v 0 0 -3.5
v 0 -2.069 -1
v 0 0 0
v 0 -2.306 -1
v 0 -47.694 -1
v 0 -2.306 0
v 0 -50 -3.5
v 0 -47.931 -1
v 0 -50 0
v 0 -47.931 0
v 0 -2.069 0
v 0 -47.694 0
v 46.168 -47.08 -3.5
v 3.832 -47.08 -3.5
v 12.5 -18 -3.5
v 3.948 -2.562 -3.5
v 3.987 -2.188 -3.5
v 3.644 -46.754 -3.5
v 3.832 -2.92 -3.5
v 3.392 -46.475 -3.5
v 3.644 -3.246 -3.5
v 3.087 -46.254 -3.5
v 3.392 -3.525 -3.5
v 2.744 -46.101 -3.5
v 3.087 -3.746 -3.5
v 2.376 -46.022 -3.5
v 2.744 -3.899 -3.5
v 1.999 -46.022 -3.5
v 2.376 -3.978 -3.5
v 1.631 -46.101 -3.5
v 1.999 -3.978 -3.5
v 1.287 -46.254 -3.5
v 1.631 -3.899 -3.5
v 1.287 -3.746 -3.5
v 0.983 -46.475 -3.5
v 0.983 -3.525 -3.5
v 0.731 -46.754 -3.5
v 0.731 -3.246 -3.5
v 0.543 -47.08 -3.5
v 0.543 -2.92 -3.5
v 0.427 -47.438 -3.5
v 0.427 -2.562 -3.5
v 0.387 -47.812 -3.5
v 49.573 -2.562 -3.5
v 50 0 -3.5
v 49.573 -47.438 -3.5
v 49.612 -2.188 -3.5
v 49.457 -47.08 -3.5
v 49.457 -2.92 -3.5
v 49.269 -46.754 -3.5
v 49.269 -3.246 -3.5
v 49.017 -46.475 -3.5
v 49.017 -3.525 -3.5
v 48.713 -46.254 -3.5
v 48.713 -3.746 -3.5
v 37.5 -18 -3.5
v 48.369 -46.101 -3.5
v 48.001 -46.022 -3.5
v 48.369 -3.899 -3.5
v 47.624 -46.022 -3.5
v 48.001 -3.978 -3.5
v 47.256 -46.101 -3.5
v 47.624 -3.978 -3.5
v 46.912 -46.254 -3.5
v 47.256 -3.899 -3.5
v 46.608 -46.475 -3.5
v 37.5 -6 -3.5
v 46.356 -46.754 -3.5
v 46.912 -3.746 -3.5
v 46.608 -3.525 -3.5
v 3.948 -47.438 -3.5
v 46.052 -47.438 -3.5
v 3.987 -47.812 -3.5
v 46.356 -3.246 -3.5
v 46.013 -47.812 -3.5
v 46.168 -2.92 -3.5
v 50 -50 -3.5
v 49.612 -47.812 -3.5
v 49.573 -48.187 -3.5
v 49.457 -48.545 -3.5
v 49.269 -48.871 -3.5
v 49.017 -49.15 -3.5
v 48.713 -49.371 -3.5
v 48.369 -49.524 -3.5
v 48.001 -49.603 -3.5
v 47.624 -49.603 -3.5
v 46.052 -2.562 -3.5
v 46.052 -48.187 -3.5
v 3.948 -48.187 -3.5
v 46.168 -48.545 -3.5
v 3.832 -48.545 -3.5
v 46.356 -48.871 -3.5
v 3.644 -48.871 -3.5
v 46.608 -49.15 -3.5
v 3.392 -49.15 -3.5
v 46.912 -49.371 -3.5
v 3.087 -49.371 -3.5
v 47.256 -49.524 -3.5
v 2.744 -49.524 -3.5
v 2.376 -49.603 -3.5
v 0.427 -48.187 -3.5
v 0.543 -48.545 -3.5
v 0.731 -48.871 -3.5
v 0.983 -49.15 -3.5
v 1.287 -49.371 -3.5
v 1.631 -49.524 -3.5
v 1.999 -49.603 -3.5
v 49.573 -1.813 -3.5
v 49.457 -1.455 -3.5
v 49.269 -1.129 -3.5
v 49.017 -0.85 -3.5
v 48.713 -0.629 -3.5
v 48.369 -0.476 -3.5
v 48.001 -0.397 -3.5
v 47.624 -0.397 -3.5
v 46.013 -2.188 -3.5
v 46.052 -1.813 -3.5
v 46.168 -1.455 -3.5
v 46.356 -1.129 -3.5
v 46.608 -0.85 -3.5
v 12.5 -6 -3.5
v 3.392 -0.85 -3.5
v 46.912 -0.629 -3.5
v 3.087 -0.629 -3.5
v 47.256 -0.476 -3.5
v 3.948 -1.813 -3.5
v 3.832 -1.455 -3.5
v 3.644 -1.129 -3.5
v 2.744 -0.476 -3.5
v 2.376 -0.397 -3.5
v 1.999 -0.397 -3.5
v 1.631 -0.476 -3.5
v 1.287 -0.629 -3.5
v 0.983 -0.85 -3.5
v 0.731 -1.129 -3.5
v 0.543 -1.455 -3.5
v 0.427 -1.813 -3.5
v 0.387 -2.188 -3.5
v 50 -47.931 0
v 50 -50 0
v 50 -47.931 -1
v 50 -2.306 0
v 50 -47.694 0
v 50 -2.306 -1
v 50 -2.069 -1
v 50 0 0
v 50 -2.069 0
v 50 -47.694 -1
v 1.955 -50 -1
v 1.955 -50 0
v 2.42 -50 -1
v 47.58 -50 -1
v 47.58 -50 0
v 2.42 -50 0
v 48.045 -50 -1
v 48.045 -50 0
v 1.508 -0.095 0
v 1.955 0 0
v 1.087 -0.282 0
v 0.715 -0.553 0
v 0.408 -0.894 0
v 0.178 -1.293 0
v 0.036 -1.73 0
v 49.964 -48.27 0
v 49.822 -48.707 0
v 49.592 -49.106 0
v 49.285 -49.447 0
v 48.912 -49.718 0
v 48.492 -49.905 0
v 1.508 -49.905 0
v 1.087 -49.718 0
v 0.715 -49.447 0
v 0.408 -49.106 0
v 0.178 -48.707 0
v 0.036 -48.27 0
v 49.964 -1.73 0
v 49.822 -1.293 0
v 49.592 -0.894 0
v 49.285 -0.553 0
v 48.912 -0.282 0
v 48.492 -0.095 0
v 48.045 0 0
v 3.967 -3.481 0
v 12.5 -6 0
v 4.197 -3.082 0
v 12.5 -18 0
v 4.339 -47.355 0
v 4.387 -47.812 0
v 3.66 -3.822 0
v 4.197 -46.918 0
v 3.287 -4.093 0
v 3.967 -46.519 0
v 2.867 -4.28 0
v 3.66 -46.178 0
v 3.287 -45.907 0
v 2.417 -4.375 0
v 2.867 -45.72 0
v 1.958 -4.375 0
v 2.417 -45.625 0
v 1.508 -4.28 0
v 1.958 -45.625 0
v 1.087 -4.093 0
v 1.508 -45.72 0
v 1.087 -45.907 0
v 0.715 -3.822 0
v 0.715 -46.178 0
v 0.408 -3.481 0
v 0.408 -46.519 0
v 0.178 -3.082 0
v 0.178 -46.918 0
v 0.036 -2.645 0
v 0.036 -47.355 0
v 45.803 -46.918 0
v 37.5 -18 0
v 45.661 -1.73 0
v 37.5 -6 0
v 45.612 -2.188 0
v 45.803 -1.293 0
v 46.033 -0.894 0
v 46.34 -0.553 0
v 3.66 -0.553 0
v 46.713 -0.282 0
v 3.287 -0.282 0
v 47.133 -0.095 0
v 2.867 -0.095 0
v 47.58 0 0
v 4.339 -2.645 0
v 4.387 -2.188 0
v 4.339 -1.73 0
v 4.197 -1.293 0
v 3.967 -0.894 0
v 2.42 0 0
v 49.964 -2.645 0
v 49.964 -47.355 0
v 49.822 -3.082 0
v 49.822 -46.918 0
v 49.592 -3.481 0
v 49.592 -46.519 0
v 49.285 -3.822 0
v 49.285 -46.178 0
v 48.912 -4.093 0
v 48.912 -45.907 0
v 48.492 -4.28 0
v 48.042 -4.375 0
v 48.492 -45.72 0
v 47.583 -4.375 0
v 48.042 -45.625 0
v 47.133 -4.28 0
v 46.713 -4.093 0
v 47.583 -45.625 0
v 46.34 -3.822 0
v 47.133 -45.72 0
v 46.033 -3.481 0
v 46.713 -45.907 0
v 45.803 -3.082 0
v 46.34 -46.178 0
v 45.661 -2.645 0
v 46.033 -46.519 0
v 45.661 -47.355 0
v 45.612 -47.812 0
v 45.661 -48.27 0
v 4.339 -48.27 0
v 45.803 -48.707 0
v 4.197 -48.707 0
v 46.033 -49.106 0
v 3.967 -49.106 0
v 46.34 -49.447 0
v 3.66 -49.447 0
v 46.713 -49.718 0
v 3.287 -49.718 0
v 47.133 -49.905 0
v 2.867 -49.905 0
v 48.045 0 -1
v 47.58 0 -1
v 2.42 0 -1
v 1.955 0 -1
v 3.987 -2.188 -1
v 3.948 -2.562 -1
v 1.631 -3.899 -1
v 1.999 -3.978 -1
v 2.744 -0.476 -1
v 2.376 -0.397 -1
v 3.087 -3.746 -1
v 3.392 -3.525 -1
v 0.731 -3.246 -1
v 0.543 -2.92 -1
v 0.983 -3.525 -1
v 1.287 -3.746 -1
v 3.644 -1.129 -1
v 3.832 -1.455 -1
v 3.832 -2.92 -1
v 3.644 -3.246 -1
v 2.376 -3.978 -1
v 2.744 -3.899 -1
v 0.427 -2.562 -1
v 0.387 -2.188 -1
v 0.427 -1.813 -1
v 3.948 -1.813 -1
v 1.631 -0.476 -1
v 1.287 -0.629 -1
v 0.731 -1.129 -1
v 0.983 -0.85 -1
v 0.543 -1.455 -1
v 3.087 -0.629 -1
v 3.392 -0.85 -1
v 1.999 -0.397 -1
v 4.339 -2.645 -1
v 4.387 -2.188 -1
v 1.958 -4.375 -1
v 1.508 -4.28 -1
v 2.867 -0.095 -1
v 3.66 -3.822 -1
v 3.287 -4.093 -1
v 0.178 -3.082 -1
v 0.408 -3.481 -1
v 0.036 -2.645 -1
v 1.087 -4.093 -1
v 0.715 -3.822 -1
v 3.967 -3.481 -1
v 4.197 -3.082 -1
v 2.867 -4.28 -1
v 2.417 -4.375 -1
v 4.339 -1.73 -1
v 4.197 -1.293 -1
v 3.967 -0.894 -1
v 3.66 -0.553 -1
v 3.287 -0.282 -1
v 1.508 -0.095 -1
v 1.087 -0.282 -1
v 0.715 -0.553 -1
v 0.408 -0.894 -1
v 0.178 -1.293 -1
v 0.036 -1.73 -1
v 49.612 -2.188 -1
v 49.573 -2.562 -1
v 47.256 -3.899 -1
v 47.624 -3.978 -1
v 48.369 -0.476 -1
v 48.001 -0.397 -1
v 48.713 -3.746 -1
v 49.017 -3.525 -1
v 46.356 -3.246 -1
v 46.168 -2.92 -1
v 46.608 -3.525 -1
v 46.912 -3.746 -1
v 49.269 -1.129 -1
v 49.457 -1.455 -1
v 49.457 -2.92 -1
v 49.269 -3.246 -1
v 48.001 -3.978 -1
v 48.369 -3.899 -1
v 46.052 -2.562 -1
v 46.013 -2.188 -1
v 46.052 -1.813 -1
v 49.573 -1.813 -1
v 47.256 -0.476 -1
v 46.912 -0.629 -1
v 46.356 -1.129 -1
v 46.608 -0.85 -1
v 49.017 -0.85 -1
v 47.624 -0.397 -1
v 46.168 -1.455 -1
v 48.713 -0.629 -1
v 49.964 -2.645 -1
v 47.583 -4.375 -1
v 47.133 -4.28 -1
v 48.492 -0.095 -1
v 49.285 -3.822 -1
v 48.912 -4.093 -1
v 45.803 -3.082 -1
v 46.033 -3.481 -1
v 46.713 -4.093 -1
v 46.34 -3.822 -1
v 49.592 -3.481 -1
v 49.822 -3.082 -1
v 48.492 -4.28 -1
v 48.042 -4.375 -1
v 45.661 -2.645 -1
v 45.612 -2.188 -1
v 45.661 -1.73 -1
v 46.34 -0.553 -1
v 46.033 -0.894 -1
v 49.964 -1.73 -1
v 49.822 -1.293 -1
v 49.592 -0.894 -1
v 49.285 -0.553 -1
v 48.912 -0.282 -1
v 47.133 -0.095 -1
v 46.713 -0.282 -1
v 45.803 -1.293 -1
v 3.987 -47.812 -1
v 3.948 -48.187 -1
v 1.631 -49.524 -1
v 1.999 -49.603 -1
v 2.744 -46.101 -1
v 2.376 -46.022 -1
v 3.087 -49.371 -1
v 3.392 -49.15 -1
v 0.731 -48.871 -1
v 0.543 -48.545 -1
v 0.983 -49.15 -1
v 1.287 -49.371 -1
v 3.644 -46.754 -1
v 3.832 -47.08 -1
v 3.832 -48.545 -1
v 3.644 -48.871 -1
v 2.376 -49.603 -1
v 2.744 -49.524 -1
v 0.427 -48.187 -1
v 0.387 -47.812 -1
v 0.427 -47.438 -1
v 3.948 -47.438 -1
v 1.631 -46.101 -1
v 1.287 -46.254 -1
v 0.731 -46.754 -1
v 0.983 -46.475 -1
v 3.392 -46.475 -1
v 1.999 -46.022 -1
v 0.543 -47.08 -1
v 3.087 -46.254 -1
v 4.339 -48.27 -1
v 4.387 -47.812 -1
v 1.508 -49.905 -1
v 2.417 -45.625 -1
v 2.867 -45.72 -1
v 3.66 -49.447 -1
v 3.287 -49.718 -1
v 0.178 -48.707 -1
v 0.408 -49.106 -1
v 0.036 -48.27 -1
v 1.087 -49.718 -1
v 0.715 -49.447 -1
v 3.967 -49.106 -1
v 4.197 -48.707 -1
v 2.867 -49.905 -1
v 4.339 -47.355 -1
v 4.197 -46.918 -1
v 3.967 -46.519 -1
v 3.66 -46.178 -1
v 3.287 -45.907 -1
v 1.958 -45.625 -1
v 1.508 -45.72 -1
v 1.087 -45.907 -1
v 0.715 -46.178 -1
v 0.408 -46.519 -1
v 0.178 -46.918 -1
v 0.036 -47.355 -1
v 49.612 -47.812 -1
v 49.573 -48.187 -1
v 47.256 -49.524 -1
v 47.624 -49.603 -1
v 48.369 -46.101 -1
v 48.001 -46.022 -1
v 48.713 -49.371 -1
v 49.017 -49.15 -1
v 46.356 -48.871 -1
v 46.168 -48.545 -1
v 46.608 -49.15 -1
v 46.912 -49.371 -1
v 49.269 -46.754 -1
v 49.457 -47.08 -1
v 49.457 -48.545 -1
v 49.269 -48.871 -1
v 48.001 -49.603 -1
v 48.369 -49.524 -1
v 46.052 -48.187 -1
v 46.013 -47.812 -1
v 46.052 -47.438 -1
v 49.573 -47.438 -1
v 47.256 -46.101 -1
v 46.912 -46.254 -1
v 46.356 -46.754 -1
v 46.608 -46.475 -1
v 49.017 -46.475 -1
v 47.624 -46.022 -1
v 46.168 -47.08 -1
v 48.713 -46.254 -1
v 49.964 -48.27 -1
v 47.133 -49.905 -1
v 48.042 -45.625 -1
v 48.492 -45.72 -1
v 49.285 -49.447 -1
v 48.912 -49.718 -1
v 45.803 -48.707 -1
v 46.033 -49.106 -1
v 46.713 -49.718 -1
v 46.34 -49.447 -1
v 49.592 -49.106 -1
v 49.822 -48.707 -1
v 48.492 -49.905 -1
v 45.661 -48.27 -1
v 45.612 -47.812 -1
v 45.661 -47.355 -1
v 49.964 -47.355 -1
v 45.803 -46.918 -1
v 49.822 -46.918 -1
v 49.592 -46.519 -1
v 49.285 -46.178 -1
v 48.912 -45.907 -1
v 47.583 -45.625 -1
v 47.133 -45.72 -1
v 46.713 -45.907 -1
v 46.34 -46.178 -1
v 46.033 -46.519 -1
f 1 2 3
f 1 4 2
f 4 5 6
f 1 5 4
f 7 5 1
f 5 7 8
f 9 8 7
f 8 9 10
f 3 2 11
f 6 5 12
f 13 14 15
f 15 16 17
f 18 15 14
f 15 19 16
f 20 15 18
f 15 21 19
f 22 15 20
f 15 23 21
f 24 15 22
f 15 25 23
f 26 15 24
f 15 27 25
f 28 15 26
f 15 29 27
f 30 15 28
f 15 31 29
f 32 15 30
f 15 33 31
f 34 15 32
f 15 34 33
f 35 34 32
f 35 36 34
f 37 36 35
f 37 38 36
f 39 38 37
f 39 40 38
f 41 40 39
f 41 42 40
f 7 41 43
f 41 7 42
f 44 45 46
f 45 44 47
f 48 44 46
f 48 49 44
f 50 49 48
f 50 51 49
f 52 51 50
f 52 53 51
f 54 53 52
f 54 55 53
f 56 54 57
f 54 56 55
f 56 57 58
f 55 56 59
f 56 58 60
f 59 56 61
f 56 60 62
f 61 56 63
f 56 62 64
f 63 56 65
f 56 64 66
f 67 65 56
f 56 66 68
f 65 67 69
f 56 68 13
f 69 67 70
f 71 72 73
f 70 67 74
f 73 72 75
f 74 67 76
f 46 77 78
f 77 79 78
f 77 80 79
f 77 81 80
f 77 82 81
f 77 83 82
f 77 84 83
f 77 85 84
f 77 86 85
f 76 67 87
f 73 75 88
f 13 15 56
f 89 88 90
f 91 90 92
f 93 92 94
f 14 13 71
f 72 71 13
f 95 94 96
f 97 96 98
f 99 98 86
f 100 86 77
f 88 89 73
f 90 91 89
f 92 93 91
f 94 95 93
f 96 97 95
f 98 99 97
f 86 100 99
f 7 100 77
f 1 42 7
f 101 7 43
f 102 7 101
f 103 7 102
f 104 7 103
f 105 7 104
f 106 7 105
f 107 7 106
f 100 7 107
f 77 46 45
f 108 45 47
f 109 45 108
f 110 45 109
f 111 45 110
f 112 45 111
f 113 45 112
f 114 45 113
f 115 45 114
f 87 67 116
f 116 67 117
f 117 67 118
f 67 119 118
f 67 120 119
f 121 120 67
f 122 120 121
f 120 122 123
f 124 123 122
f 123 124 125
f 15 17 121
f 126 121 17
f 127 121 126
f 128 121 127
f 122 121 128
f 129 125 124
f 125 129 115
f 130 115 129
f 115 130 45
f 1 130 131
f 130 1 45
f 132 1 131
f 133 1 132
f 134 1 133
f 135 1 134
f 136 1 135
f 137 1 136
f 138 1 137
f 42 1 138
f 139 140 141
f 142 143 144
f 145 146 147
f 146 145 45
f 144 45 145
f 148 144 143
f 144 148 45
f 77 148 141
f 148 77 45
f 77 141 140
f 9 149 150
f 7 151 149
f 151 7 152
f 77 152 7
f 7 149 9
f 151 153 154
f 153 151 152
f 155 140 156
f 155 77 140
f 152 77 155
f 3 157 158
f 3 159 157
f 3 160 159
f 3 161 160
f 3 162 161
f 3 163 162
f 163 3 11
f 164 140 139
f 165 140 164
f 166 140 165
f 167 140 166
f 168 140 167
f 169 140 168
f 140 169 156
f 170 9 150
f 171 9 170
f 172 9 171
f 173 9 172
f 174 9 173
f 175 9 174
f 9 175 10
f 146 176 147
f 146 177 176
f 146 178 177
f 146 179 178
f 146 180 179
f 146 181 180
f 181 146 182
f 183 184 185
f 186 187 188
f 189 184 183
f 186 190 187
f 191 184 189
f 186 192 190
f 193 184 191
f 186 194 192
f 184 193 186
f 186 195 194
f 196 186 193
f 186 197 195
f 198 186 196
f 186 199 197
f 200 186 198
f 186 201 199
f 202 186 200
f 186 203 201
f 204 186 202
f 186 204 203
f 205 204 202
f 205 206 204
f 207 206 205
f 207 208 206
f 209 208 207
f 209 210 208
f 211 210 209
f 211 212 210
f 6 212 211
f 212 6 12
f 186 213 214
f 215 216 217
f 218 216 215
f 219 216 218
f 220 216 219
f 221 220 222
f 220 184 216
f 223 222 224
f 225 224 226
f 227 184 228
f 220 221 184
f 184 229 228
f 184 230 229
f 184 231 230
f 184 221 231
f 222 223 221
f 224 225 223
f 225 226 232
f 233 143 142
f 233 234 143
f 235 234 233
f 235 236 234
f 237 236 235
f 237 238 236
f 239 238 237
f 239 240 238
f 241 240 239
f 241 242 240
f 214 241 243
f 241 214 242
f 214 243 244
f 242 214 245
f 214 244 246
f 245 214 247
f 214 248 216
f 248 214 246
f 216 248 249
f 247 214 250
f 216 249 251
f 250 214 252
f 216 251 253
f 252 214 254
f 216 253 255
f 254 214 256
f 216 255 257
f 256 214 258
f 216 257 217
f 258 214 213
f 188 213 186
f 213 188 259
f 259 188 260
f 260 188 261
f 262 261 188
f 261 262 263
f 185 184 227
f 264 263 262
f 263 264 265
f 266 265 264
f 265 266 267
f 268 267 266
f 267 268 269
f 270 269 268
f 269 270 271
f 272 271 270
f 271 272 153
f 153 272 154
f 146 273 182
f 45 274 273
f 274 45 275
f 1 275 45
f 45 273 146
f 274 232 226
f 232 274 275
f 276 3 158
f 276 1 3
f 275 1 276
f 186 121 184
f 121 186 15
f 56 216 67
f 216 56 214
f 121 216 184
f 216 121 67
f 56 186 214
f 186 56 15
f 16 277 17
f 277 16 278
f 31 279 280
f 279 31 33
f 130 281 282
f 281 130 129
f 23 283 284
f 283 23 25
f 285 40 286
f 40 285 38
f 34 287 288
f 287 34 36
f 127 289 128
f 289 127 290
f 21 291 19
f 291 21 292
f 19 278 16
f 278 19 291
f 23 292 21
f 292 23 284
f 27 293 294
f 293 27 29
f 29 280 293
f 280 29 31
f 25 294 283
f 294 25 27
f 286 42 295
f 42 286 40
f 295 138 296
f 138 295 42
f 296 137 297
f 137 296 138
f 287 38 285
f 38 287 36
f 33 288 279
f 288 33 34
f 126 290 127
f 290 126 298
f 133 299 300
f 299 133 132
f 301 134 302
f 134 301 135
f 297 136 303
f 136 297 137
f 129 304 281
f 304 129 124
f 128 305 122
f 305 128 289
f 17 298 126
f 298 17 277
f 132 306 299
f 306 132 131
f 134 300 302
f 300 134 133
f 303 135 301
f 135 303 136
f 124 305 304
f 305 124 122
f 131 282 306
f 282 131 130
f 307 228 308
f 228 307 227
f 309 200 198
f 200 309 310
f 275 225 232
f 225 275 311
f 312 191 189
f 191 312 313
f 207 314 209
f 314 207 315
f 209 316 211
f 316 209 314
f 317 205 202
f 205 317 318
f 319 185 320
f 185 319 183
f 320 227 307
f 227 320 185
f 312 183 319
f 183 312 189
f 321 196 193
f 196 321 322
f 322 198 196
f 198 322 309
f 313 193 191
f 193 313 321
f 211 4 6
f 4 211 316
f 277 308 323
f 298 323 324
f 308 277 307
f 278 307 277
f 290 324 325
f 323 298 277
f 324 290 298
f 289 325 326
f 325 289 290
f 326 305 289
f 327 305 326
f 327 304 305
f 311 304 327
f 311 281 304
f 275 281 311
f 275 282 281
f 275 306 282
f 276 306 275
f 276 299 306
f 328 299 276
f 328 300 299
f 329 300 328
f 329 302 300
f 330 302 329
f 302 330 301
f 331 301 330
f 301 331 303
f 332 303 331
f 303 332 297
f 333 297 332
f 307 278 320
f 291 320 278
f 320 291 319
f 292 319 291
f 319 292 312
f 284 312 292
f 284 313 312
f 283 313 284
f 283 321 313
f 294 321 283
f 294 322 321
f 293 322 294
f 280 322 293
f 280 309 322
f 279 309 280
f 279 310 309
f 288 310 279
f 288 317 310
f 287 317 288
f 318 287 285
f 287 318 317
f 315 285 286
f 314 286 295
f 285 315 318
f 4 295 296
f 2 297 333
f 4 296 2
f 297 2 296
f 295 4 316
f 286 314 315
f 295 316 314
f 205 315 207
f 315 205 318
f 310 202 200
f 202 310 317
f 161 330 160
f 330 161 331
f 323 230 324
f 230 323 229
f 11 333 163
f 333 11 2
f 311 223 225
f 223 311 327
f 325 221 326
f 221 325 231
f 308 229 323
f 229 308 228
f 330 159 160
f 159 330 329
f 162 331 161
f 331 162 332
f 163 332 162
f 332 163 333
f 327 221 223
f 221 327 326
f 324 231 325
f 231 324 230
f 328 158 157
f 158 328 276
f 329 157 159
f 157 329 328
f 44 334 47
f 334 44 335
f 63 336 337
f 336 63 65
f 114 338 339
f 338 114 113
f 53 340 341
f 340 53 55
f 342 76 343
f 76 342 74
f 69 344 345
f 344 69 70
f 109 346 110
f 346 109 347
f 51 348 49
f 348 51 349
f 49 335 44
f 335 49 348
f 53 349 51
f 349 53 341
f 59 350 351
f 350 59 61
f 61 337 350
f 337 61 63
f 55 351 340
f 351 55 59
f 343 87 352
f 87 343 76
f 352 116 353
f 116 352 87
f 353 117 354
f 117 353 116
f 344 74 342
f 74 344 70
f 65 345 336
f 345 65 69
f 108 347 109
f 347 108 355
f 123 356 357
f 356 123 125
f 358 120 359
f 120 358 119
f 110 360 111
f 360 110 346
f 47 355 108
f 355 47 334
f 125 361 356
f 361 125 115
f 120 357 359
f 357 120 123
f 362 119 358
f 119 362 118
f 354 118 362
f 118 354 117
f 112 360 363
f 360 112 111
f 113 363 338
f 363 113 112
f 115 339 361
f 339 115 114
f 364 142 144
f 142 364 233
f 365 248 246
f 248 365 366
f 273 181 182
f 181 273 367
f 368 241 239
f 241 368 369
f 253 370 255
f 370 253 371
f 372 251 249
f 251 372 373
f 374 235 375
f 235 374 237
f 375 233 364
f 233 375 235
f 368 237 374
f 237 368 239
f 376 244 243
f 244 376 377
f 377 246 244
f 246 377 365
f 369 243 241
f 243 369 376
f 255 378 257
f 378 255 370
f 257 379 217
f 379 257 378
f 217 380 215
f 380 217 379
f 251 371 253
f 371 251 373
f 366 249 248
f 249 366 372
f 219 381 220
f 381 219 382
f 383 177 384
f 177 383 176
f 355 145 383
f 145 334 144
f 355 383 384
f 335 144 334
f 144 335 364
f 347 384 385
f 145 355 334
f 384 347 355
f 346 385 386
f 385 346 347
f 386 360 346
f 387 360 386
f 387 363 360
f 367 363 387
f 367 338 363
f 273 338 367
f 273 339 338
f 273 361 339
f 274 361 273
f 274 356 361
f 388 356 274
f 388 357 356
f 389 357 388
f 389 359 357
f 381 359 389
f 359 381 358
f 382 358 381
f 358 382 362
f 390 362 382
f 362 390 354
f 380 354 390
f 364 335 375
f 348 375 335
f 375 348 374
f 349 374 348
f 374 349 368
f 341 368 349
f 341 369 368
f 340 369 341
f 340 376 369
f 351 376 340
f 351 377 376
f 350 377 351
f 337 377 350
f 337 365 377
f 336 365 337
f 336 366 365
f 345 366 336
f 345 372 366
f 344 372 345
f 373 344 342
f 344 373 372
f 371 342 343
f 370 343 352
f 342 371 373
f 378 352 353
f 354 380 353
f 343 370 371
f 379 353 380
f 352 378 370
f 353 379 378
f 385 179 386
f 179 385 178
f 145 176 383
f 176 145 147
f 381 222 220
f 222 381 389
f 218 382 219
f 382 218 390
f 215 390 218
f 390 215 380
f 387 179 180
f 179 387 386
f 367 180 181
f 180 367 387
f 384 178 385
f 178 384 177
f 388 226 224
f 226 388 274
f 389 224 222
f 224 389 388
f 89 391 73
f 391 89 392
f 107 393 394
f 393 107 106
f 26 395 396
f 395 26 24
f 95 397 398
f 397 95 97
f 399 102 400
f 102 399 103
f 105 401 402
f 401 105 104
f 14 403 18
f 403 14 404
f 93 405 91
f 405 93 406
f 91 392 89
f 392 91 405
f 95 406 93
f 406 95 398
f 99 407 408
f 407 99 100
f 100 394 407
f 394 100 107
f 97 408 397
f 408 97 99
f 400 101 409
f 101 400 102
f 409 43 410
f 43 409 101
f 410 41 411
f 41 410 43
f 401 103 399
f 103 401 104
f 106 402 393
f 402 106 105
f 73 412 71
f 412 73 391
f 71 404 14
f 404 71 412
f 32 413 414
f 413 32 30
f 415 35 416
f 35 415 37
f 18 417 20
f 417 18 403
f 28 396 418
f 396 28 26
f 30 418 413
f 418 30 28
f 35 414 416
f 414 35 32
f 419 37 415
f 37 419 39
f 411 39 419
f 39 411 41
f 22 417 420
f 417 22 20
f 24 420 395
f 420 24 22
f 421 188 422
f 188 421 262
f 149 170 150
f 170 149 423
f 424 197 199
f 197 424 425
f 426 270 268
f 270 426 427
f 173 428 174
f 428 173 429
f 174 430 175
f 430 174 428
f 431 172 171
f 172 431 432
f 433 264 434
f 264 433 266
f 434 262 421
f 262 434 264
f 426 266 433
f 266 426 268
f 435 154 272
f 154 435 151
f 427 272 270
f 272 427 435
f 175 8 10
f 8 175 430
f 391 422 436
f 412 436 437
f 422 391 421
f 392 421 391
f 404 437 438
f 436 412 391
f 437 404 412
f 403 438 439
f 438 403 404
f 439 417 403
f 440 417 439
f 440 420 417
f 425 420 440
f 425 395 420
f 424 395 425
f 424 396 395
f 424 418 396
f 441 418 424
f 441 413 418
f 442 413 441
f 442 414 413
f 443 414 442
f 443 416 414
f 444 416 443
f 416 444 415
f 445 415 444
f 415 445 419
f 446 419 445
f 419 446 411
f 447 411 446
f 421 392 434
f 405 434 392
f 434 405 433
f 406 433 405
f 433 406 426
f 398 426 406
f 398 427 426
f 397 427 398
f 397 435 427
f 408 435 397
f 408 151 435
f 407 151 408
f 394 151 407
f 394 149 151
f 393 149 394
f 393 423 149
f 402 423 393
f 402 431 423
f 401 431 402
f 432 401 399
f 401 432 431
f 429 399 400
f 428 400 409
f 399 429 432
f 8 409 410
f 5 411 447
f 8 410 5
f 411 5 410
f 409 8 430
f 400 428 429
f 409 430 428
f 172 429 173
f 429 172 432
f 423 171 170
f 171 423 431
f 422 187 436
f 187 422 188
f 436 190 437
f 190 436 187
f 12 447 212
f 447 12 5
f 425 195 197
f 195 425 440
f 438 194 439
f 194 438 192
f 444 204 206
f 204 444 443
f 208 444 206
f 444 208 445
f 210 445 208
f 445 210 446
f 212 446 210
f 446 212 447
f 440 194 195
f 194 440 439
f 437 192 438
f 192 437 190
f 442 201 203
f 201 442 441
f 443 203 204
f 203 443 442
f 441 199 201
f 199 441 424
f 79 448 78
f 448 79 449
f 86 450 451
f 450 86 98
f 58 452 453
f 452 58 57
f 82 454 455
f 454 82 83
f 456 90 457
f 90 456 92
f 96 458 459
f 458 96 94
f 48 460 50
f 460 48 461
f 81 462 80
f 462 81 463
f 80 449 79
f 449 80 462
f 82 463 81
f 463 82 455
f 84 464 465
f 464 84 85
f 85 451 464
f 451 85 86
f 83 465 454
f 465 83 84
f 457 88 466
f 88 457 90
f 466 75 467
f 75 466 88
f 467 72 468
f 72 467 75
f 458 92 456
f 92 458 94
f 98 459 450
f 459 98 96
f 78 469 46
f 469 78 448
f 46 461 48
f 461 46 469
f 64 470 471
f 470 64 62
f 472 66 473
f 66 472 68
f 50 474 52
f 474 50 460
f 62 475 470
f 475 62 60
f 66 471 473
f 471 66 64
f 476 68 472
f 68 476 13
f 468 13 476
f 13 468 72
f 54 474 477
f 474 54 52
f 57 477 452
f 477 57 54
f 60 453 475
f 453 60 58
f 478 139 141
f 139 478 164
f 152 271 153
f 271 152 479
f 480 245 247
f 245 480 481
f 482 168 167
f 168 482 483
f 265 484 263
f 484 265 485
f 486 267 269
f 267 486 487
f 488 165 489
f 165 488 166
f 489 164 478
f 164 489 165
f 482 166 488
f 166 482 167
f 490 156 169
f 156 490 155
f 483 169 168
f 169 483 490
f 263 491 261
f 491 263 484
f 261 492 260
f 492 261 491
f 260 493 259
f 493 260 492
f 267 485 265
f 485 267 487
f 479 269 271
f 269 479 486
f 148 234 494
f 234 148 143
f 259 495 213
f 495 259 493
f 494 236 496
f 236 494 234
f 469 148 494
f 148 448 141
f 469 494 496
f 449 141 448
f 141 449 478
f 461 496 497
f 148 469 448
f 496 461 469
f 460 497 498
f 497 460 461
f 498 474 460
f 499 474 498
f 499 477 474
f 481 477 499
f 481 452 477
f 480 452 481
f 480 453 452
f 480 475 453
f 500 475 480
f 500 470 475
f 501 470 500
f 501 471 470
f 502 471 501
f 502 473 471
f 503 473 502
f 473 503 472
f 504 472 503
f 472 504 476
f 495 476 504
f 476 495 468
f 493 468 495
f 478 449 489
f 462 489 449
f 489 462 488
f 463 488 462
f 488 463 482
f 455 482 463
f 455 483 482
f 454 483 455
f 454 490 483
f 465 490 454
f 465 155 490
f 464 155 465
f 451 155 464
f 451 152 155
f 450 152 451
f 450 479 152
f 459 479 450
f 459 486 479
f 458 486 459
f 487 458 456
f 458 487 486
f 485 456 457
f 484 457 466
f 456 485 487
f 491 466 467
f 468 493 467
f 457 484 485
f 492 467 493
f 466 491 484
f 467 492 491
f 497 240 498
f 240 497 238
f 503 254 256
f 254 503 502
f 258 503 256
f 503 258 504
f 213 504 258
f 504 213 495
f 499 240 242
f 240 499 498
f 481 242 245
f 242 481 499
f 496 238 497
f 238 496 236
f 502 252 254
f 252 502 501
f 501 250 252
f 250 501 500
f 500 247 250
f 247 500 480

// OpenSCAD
top_baseplate_length = 38.5;
top_baseplate_width = 38;
height = 5;

box_width = 50;
box_length = 50;
box_height = 30;

cable_width = 14;

lens_length = 20;
lens_width = 20;
lens_height = 7.3;
lens_small_circle_radius = 3;
iris_rad_small = 6;
iris_rad_big = 7;
iris_height = 2;

bulk_width = 43;
bulk_length = 43;
bulk_height = 15;

mount_holes_radius = 2;
mount_holes_x_sep = 26.2 + 2*mount_holes_radius;
mount_holes_y_sep = 26.2 + 2*mount_holes_radius;

insert_height = 20;
insert_radius = 1.8;

fan_screw_offset = 3.1;
fan_hole_offset_top = 5;
fan_hole_offset_side = 10;

screw_radius = 1.8;
screw_height = lens_height+iris_height+1;
screw_top_radius = 2.2;



box_wall = (box_width-bulk_width)/2;

rotate([180,0,0])

difference()
{
// Lid
#cube([50,50,3.5]);


// Cable hole
translate([25-12.5,6,0])
{
cube([25,12,10]);
}

//Threaded lid insert1
translate([box_wall/1.6, box_wall/1.6,-1])
{
    cylinder(r=insert_radius,h=insert_height+1, $fn=30);
}
translate([box_wall/1.6, box_wall/1.6,0])
{
cylinder(r=2.2, h=1, $fn=30);
}
//Threaded lid insert2
translate([box_width - box_wall/1.6, box_wall/1.6,-1])
{
    cylinder(r=insert_radius,h=insert_height+1, $fn=30);
}
translate([box_width - box_wall/1.6, box_wall/1.6,0])
{
cylinder(r=2.2, h=1, $fn=30);
}

//Threaded lid insert3
translate([box_wall/1.6, box_width-box_wall/1.6,-1])
{
    cylinder(r=insert_radius,h=insert_height+1, $fn=30);
}

translate([box_wall/1.6, box_width-box_wall/1.6,0])
{
cylinder(r=2.2, h=1, $fn=30);
}



//Threaded lid insert4
translate([box_width-box_wall/1.6, box_width-box_wall/1.6,-1])
{
    cylinder(r=insert_radius,h=insert_height+1, $fn=30);
}
translate([box_width-box_wall/1.6, box_width-box_wall/1.6,0])
{
cylinder(r=2.2, h=1, $fn=30);
}


}
